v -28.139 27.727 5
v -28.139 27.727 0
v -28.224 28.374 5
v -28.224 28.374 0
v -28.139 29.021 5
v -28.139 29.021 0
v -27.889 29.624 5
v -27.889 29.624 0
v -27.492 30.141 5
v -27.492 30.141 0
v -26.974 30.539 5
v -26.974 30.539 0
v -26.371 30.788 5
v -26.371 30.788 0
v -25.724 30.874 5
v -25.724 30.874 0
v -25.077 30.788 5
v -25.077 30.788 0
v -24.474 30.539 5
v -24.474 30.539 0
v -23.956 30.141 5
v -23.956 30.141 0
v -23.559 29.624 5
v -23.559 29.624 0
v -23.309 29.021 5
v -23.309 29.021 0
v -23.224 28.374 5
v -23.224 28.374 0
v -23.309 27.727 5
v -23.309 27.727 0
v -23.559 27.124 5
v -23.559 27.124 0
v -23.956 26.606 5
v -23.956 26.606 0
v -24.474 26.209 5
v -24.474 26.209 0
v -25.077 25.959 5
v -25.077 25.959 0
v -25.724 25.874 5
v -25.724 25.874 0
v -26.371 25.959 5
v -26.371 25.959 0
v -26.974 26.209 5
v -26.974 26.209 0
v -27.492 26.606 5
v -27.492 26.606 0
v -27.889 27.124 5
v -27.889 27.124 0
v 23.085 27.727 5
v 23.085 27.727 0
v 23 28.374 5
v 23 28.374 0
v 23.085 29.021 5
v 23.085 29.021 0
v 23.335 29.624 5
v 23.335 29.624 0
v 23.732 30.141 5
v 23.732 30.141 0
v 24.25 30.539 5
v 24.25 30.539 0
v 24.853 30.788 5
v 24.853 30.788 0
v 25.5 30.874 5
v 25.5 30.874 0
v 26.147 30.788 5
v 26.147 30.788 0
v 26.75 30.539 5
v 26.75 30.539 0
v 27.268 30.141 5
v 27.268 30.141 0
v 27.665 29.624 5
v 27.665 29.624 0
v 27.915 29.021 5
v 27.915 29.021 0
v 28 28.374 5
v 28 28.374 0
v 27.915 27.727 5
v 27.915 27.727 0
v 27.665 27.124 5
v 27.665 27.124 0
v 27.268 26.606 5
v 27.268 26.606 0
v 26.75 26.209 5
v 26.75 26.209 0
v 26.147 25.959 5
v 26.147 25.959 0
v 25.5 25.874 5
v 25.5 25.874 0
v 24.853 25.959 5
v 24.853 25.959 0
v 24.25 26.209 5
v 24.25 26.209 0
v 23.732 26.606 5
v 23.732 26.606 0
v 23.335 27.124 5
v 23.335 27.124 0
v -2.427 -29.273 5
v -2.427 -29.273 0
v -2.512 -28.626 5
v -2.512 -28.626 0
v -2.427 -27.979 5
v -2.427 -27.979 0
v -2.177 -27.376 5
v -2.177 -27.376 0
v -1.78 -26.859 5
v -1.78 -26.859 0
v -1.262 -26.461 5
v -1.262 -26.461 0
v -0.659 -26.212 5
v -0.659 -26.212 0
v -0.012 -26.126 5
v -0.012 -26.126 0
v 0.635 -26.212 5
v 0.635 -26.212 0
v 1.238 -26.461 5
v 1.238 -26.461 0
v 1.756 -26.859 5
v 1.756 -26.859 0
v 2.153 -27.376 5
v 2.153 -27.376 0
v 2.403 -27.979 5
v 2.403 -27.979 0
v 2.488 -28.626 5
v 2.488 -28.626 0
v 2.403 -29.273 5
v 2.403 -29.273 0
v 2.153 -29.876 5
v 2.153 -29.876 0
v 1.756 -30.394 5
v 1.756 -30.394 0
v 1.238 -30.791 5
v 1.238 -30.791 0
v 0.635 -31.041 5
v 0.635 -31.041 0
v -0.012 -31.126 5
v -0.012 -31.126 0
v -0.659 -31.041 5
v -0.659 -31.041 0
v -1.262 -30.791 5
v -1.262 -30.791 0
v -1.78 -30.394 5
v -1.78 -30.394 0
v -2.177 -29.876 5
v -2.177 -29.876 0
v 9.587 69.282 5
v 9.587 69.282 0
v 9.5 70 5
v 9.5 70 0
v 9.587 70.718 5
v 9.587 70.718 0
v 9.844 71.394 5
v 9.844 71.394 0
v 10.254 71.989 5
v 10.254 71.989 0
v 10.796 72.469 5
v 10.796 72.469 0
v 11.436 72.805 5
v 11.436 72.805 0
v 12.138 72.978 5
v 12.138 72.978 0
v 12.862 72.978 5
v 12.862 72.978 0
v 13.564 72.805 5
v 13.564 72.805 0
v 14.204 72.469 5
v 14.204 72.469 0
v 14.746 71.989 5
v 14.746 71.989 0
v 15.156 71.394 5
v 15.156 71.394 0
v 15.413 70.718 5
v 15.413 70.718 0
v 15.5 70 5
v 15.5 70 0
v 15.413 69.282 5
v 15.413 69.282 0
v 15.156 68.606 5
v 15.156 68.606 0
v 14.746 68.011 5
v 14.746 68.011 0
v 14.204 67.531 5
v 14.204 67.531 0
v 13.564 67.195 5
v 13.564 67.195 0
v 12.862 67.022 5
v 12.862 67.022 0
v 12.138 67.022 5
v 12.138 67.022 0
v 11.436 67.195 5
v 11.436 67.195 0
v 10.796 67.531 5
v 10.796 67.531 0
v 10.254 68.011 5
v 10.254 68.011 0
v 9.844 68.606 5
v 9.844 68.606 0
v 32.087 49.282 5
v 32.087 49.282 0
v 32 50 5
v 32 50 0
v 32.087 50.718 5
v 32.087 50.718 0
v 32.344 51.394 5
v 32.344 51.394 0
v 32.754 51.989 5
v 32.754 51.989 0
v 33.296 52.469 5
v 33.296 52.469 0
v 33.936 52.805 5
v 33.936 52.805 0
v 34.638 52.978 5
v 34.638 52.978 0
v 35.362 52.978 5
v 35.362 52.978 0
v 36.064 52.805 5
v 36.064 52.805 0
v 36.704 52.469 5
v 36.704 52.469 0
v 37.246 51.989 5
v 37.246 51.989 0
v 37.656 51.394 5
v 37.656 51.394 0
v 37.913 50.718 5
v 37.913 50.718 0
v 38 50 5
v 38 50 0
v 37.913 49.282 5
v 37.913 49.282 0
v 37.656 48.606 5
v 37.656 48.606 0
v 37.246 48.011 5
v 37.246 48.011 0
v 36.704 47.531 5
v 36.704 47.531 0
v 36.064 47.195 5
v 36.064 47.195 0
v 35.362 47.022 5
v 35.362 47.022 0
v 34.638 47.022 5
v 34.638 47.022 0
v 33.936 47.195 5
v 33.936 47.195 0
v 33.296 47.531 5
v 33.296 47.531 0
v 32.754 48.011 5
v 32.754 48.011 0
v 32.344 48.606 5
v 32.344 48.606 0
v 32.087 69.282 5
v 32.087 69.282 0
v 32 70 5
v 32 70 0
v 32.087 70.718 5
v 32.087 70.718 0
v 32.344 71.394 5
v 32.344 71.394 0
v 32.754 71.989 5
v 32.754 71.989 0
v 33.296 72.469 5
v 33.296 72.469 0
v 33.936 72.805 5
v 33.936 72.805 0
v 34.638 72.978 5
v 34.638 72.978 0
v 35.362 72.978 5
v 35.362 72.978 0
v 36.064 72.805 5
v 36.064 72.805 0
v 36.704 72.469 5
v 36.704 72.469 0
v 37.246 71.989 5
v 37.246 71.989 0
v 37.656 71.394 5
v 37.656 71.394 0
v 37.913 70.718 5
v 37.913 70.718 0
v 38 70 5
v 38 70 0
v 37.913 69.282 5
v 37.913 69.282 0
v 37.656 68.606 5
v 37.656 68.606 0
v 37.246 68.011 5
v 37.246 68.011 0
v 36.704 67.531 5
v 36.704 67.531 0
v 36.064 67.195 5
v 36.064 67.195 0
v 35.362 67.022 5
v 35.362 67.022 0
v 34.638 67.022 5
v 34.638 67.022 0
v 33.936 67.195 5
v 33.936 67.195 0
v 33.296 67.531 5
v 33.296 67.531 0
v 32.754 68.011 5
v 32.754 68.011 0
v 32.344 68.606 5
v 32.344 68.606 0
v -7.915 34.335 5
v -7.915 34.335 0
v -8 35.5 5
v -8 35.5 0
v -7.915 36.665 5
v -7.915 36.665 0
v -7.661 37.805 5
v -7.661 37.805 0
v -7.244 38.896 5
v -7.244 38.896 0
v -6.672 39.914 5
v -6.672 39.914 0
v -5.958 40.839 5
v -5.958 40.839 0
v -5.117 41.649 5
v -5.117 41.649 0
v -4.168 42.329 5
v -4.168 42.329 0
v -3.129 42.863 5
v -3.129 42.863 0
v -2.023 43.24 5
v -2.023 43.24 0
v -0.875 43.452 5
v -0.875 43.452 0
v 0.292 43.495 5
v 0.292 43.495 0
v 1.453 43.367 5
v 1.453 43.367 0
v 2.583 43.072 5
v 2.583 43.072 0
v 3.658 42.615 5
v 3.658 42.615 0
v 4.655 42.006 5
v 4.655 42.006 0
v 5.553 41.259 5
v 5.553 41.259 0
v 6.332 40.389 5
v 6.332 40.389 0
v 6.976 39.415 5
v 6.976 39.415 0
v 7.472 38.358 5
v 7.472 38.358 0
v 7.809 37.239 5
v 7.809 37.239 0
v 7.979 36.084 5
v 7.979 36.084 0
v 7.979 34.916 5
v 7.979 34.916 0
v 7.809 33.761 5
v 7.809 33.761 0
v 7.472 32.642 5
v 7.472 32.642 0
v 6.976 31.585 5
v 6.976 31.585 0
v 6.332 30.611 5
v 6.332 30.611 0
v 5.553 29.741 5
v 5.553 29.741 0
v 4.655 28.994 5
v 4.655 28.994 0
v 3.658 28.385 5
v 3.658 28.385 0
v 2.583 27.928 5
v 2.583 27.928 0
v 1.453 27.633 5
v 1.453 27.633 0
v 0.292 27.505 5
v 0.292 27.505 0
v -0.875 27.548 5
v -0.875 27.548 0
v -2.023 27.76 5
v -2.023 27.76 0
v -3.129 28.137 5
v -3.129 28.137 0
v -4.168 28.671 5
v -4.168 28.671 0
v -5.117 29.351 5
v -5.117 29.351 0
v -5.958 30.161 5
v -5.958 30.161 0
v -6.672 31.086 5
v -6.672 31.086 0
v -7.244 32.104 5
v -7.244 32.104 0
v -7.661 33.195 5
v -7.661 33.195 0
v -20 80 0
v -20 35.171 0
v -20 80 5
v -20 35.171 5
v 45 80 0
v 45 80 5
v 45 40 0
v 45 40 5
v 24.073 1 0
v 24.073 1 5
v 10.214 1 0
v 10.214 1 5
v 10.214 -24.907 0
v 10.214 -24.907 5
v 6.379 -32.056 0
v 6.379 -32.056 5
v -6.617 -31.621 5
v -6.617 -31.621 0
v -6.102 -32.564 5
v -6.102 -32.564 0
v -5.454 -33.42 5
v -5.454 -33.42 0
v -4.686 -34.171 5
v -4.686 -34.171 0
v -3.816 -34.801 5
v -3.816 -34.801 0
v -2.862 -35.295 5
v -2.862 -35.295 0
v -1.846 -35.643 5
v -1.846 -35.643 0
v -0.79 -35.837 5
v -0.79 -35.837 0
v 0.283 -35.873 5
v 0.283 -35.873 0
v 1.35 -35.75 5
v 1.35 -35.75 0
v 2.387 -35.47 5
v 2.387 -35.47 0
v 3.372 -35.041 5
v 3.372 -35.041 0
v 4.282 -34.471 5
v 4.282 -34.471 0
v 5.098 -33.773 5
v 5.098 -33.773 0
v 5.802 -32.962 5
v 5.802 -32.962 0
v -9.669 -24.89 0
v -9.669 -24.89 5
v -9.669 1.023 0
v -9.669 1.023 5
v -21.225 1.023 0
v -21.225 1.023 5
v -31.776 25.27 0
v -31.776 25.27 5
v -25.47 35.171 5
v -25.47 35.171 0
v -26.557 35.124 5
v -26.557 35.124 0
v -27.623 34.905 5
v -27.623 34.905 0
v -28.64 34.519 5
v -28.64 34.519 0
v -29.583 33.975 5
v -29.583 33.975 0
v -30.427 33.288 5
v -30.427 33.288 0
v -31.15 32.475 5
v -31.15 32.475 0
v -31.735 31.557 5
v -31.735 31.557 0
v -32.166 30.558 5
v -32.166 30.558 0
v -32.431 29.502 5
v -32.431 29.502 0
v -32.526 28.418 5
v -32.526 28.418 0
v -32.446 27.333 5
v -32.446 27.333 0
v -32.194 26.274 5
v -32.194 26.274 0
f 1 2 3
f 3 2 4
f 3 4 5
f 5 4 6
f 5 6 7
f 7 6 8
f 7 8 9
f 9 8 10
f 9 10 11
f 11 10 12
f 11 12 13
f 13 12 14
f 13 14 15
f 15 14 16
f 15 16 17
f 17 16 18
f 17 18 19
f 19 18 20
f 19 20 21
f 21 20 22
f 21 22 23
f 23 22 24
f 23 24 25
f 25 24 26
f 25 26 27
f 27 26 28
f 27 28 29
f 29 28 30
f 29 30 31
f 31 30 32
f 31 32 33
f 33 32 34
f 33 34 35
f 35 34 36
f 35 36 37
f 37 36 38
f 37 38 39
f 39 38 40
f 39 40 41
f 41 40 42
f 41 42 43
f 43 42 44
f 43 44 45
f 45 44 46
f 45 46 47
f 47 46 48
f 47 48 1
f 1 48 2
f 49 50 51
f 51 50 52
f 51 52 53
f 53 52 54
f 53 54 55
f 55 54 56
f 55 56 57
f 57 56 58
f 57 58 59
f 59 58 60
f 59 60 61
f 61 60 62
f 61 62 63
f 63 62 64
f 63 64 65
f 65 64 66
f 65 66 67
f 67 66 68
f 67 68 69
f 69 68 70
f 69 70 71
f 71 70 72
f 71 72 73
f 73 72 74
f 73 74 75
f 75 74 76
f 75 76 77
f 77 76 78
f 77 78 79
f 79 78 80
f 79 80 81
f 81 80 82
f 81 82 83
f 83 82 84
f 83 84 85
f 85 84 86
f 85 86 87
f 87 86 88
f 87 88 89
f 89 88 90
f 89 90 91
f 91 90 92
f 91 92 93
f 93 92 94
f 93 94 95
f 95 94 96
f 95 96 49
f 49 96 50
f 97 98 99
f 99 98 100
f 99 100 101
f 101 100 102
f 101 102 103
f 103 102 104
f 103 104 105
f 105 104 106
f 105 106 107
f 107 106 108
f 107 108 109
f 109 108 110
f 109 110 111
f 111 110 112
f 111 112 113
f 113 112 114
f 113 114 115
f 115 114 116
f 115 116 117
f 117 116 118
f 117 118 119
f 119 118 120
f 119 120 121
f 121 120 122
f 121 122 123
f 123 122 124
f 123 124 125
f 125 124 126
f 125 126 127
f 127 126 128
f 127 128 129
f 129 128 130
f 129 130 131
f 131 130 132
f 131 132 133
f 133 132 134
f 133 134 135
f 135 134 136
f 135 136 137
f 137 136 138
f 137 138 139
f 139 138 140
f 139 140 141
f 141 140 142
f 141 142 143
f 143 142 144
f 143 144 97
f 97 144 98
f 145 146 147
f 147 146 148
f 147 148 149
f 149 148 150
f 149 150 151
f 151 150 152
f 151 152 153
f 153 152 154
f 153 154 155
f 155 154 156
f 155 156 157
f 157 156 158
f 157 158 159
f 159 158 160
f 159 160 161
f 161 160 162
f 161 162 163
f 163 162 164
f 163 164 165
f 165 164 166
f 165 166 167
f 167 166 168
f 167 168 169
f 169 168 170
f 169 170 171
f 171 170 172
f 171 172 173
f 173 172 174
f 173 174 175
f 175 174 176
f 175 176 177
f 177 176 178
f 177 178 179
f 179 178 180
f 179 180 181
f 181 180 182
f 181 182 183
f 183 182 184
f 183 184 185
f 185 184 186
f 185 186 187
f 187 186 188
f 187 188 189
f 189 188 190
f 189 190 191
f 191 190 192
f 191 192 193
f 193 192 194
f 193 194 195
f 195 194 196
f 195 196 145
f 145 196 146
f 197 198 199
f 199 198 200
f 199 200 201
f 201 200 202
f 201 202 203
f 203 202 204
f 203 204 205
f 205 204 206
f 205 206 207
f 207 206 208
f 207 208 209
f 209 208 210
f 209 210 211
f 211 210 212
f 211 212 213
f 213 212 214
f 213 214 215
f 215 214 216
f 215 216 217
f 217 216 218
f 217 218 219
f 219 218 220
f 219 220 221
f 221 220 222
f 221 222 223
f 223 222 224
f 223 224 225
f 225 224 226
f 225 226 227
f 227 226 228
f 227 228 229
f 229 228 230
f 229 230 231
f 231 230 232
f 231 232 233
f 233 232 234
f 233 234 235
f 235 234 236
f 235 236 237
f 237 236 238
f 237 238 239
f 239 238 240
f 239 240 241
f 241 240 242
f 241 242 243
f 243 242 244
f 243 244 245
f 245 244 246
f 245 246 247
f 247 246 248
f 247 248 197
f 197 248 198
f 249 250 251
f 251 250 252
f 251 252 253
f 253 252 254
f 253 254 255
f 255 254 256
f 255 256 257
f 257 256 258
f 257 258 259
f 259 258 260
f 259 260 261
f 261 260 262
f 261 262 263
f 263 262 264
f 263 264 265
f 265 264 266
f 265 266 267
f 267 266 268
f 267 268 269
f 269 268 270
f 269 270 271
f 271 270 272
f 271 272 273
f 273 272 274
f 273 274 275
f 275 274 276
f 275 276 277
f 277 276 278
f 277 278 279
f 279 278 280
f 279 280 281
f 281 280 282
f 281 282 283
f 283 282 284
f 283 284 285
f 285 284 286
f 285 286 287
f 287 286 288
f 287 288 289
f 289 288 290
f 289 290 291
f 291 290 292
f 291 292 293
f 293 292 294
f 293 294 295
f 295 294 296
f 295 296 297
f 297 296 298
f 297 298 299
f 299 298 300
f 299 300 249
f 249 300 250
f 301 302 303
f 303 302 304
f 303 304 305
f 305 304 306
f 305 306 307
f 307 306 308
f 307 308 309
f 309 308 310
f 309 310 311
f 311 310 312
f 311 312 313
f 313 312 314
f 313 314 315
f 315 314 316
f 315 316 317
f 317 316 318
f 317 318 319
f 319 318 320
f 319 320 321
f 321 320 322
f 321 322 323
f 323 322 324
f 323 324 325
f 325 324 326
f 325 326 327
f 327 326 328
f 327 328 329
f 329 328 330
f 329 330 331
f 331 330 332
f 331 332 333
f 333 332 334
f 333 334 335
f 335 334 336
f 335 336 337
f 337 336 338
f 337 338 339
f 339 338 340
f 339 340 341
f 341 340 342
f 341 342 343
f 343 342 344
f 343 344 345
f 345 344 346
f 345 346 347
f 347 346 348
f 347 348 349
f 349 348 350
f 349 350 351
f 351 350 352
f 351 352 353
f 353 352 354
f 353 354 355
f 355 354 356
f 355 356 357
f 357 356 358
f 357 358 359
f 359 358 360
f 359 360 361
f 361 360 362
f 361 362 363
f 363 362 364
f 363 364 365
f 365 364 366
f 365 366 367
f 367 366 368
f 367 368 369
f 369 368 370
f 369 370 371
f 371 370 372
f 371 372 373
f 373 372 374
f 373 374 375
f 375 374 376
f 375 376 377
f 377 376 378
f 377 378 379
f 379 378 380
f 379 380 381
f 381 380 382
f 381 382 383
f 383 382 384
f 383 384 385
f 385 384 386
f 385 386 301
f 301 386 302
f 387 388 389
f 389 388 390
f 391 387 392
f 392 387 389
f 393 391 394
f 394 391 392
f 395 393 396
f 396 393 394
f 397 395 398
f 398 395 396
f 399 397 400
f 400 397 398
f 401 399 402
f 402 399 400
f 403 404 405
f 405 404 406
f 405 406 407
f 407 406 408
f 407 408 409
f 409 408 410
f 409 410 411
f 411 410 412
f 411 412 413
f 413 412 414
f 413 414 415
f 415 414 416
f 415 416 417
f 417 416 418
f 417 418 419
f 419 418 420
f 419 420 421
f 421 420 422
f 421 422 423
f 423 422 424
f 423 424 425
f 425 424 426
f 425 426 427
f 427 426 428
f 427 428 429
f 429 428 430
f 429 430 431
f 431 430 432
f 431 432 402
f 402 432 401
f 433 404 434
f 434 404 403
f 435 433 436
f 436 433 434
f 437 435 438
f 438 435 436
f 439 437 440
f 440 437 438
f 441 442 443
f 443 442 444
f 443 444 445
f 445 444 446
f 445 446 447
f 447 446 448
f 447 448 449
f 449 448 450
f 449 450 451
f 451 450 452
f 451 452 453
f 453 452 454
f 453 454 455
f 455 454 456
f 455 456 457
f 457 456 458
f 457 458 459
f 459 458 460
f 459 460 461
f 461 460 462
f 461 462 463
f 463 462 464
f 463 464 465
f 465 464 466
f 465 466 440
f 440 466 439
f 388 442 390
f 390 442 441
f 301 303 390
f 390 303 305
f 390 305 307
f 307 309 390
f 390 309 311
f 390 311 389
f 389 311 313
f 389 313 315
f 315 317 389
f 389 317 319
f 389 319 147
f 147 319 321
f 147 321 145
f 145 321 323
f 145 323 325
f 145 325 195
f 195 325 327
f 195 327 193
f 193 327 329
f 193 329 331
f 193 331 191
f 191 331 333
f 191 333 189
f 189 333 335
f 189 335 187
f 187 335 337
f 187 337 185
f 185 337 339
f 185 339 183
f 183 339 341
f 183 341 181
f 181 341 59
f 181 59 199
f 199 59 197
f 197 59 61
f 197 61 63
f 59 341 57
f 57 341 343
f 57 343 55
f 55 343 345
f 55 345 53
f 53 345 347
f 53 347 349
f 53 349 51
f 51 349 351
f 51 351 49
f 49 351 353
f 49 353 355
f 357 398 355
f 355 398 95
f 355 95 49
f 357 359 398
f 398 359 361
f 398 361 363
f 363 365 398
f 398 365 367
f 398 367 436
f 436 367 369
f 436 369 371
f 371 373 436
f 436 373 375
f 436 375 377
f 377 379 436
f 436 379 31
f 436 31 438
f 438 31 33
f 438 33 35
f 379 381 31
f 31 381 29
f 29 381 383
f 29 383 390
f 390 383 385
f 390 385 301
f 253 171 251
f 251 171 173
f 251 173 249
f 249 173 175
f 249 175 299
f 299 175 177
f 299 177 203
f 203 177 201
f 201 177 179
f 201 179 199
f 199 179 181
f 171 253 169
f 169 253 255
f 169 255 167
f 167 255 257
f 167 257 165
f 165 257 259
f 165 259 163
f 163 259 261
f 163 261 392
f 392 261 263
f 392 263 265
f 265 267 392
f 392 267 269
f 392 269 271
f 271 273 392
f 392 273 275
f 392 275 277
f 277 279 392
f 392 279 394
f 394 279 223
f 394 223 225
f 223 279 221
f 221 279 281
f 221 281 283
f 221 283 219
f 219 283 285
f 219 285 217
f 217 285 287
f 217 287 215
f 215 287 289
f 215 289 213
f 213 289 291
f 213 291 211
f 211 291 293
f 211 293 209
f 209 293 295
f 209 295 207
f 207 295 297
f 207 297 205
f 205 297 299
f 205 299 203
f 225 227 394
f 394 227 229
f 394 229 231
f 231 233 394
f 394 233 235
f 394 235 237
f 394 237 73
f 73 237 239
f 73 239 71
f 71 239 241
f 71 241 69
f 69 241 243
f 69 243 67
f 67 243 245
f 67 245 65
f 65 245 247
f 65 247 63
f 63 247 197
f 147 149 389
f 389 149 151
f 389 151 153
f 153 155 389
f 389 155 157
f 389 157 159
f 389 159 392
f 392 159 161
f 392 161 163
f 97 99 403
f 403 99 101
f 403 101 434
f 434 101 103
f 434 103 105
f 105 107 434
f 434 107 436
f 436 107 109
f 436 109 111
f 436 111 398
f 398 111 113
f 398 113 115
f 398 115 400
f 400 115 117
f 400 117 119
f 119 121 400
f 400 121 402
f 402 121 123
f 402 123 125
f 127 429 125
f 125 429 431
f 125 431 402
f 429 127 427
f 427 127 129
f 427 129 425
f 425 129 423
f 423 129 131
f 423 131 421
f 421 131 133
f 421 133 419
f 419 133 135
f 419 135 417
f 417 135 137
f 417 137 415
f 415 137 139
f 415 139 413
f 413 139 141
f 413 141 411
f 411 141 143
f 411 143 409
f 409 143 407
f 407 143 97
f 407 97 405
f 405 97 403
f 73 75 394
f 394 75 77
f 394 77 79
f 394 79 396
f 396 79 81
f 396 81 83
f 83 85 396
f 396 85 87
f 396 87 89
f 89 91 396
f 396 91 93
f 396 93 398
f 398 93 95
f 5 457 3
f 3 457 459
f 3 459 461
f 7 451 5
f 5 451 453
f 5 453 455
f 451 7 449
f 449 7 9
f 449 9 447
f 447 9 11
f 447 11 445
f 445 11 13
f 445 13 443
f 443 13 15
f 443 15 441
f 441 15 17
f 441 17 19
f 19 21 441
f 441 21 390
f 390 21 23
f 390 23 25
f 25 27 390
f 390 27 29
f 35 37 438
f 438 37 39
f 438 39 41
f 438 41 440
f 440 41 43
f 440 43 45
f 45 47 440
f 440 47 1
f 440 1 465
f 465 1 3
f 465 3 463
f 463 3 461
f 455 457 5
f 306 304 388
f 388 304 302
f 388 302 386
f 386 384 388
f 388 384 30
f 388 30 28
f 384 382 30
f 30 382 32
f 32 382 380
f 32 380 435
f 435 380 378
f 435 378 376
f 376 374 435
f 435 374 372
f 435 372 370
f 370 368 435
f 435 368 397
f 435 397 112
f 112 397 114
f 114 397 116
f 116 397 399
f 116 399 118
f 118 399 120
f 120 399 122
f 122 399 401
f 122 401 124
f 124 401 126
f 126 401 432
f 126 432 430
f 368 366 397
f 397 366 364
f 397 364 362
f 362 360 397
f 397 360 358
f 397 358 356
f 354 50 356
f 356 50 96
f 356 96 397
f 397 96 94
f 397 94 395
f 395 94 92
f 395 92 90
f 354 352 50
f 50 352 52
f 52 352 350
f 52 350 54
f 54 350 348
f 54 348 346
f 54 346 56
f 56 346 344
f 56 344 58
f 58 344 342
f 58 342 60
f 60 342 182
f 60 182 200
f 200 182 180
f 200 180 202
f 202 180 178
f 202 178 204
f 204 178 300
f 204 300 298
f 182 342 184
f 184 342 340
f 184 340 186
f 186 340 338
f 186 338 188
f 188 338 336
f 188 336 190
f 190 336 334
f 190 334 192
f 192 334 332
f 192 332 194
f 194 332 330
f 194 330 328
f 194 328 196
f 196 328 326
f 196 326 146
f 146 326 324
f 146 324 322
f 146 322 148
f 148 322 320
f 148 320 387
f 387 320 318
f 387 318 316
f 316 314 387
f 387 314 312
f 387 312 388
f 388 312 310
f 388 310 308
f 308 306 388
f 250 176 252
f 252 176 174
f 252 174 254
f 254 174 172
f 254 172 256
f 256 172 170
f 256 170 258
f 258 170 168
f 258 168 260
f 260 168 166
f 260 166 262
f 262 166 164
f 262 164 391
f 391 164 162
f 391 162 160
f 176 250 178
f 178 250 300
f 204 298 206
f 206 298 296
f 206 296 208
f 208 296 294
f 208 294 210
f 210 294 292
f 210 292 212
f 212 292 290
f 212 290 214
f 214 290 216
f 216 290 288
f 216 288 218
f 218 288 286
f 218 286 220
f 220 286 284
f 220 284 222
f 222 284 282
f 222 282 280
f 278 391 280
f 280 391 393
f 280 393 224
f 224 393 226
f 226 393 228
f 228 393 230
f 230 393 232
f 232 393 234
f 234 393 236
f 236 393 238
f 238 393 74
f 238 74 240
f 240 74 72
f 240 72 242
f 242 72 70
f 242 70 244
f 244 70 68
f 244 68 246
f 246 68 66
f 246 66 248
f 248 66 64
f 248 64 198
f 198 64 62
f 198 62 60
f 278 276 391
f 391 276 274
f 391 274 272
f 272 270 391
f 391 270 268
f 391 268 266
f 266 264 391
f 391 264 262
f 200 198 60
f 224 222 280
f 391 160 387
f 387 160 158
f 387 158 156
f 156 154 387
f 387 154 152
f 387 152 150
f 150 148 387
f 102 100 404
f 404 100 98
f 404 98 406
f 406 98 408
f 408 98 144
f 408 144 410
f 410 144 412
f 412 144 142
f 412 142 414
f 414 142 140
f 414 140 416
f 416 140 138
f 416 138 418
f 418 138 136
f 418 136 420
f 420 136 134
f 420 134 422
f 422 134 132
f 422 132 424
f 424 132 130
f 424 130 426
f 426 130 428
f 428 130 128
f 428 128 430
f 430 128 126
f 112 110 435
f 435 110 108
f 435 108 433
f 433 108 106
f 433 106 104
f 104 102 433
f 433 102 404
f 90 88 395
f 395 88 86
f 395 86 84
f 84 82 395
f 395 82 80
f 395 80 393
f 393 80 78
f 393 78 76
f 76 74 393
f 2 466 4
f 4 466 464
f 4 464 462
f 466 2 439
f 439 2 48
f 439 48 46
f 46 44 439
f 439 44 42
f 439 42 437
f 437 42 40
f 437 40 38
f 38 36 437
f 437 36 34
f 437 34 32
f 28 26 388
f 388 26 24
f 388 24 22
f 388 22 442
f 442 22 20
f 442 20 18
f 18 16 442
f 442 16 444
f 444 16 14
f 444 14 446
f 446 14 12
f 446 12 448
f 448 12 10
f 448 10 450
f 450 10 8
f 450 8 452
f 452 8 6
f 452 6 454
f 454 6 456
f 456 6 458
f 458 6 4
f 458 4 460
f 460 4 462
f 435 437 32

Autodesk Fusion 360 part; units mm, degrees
sketch "Sketch1" plane through (0, 0, 0) normal (0, 0, 1) x (1, 0, 0)
  circle A0 centre (-25.7238, 28.3736) radius 2.5
  circle A1 centre (25.5, 28.3736) radius 2.5
  circle A2 centre (-0.0118, -28.6264) radius 2.5
  line L0 (45, 40) -> (45, 80)
  line L1 (45, 80) -> (25, 80)
  circle A3 centre (35, 50) radius 3
  circle A4 centre (12.5, 70) radius 3
  arc A5 (-6.6169, -31.6214) -> (6.3787, -32.0555) centre (-0.0118, -28.6264) ccw
  line L2 (-9.6692, 1.0232) -> (-9.6692, -24.8899)
  line L3 (10.2145, -24.9071) -> (10.2145, 1)
  line L4 (10.2145, 1) -> (24.0728, 1)
  line L5 (-9.6692, 1.0232) -> (-21.2251, 1.0232)
  line L6 (6.3787, -32.0555) -> (10.2145, -24.9071)
  line L7 (24.0728, 1) -> (45, 40)
  line L8 (-9.6692, -24.8899) -> (-6.6169, -31.6214)
  line L9 (-20, 35.1708) -> (-20, 80)
  line L10 (-20, 80) -> (25, 80)
  line L11 (-21.2251, 1.0232) -> (-31.7762, 25.2695)
  line L12 (-25.47, 35.1708) -> (-20, 35.1708)
  arc A6 (-25.47, 35.1708) -> (-31.7762, 25.2695) centre (-25.7238, 28.3736) ccw
  circle A7 centre (0, 35.5) radius 8
  circle A8 centre (35, 70) radius 3
  point P0 (0, 35.5)
  dimension "d43" = 16
  dimension "d46" = 6
extrude "Extrude5" add sketch "Sketch1" along normal blind 5
